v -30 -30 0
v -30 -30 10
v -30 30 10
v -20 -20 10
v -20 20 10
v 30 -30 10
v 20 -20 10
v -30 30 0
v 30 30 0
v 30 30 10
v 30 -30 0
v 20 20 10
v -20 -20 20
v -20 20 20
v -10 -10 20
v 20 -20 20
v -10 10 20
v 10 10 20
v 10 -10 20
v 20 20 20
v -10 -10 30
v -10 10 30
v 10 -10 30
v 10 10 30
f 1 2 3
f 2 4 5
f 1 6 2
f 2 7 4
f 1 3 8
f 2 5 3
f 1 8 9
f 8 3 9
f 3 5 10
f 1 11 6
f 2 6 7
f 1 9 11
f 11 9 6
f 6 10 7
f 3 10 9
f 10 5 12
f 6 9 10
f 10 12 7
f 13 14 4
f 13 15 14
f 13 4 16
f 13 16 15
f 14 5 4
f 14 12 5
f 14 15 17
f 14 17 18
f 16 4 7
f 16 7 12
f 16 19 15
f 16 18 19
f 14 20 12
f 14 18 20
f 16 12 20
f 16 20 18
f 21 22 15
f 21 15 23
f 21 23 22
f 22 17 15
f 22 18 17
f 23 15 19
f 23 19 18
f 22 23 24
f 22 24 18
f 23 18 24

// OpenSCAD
// 3段の階段状ピラミッド（底面が z=0 に接するように配置）
translate([0, 0, 5])  cube([60, 60, 10], center=true);
translate([0, 0, 15]) cube([40, 40, 10], center=true);
translate([0, 0, 25]) cube([20, 20, 10], center=true);
